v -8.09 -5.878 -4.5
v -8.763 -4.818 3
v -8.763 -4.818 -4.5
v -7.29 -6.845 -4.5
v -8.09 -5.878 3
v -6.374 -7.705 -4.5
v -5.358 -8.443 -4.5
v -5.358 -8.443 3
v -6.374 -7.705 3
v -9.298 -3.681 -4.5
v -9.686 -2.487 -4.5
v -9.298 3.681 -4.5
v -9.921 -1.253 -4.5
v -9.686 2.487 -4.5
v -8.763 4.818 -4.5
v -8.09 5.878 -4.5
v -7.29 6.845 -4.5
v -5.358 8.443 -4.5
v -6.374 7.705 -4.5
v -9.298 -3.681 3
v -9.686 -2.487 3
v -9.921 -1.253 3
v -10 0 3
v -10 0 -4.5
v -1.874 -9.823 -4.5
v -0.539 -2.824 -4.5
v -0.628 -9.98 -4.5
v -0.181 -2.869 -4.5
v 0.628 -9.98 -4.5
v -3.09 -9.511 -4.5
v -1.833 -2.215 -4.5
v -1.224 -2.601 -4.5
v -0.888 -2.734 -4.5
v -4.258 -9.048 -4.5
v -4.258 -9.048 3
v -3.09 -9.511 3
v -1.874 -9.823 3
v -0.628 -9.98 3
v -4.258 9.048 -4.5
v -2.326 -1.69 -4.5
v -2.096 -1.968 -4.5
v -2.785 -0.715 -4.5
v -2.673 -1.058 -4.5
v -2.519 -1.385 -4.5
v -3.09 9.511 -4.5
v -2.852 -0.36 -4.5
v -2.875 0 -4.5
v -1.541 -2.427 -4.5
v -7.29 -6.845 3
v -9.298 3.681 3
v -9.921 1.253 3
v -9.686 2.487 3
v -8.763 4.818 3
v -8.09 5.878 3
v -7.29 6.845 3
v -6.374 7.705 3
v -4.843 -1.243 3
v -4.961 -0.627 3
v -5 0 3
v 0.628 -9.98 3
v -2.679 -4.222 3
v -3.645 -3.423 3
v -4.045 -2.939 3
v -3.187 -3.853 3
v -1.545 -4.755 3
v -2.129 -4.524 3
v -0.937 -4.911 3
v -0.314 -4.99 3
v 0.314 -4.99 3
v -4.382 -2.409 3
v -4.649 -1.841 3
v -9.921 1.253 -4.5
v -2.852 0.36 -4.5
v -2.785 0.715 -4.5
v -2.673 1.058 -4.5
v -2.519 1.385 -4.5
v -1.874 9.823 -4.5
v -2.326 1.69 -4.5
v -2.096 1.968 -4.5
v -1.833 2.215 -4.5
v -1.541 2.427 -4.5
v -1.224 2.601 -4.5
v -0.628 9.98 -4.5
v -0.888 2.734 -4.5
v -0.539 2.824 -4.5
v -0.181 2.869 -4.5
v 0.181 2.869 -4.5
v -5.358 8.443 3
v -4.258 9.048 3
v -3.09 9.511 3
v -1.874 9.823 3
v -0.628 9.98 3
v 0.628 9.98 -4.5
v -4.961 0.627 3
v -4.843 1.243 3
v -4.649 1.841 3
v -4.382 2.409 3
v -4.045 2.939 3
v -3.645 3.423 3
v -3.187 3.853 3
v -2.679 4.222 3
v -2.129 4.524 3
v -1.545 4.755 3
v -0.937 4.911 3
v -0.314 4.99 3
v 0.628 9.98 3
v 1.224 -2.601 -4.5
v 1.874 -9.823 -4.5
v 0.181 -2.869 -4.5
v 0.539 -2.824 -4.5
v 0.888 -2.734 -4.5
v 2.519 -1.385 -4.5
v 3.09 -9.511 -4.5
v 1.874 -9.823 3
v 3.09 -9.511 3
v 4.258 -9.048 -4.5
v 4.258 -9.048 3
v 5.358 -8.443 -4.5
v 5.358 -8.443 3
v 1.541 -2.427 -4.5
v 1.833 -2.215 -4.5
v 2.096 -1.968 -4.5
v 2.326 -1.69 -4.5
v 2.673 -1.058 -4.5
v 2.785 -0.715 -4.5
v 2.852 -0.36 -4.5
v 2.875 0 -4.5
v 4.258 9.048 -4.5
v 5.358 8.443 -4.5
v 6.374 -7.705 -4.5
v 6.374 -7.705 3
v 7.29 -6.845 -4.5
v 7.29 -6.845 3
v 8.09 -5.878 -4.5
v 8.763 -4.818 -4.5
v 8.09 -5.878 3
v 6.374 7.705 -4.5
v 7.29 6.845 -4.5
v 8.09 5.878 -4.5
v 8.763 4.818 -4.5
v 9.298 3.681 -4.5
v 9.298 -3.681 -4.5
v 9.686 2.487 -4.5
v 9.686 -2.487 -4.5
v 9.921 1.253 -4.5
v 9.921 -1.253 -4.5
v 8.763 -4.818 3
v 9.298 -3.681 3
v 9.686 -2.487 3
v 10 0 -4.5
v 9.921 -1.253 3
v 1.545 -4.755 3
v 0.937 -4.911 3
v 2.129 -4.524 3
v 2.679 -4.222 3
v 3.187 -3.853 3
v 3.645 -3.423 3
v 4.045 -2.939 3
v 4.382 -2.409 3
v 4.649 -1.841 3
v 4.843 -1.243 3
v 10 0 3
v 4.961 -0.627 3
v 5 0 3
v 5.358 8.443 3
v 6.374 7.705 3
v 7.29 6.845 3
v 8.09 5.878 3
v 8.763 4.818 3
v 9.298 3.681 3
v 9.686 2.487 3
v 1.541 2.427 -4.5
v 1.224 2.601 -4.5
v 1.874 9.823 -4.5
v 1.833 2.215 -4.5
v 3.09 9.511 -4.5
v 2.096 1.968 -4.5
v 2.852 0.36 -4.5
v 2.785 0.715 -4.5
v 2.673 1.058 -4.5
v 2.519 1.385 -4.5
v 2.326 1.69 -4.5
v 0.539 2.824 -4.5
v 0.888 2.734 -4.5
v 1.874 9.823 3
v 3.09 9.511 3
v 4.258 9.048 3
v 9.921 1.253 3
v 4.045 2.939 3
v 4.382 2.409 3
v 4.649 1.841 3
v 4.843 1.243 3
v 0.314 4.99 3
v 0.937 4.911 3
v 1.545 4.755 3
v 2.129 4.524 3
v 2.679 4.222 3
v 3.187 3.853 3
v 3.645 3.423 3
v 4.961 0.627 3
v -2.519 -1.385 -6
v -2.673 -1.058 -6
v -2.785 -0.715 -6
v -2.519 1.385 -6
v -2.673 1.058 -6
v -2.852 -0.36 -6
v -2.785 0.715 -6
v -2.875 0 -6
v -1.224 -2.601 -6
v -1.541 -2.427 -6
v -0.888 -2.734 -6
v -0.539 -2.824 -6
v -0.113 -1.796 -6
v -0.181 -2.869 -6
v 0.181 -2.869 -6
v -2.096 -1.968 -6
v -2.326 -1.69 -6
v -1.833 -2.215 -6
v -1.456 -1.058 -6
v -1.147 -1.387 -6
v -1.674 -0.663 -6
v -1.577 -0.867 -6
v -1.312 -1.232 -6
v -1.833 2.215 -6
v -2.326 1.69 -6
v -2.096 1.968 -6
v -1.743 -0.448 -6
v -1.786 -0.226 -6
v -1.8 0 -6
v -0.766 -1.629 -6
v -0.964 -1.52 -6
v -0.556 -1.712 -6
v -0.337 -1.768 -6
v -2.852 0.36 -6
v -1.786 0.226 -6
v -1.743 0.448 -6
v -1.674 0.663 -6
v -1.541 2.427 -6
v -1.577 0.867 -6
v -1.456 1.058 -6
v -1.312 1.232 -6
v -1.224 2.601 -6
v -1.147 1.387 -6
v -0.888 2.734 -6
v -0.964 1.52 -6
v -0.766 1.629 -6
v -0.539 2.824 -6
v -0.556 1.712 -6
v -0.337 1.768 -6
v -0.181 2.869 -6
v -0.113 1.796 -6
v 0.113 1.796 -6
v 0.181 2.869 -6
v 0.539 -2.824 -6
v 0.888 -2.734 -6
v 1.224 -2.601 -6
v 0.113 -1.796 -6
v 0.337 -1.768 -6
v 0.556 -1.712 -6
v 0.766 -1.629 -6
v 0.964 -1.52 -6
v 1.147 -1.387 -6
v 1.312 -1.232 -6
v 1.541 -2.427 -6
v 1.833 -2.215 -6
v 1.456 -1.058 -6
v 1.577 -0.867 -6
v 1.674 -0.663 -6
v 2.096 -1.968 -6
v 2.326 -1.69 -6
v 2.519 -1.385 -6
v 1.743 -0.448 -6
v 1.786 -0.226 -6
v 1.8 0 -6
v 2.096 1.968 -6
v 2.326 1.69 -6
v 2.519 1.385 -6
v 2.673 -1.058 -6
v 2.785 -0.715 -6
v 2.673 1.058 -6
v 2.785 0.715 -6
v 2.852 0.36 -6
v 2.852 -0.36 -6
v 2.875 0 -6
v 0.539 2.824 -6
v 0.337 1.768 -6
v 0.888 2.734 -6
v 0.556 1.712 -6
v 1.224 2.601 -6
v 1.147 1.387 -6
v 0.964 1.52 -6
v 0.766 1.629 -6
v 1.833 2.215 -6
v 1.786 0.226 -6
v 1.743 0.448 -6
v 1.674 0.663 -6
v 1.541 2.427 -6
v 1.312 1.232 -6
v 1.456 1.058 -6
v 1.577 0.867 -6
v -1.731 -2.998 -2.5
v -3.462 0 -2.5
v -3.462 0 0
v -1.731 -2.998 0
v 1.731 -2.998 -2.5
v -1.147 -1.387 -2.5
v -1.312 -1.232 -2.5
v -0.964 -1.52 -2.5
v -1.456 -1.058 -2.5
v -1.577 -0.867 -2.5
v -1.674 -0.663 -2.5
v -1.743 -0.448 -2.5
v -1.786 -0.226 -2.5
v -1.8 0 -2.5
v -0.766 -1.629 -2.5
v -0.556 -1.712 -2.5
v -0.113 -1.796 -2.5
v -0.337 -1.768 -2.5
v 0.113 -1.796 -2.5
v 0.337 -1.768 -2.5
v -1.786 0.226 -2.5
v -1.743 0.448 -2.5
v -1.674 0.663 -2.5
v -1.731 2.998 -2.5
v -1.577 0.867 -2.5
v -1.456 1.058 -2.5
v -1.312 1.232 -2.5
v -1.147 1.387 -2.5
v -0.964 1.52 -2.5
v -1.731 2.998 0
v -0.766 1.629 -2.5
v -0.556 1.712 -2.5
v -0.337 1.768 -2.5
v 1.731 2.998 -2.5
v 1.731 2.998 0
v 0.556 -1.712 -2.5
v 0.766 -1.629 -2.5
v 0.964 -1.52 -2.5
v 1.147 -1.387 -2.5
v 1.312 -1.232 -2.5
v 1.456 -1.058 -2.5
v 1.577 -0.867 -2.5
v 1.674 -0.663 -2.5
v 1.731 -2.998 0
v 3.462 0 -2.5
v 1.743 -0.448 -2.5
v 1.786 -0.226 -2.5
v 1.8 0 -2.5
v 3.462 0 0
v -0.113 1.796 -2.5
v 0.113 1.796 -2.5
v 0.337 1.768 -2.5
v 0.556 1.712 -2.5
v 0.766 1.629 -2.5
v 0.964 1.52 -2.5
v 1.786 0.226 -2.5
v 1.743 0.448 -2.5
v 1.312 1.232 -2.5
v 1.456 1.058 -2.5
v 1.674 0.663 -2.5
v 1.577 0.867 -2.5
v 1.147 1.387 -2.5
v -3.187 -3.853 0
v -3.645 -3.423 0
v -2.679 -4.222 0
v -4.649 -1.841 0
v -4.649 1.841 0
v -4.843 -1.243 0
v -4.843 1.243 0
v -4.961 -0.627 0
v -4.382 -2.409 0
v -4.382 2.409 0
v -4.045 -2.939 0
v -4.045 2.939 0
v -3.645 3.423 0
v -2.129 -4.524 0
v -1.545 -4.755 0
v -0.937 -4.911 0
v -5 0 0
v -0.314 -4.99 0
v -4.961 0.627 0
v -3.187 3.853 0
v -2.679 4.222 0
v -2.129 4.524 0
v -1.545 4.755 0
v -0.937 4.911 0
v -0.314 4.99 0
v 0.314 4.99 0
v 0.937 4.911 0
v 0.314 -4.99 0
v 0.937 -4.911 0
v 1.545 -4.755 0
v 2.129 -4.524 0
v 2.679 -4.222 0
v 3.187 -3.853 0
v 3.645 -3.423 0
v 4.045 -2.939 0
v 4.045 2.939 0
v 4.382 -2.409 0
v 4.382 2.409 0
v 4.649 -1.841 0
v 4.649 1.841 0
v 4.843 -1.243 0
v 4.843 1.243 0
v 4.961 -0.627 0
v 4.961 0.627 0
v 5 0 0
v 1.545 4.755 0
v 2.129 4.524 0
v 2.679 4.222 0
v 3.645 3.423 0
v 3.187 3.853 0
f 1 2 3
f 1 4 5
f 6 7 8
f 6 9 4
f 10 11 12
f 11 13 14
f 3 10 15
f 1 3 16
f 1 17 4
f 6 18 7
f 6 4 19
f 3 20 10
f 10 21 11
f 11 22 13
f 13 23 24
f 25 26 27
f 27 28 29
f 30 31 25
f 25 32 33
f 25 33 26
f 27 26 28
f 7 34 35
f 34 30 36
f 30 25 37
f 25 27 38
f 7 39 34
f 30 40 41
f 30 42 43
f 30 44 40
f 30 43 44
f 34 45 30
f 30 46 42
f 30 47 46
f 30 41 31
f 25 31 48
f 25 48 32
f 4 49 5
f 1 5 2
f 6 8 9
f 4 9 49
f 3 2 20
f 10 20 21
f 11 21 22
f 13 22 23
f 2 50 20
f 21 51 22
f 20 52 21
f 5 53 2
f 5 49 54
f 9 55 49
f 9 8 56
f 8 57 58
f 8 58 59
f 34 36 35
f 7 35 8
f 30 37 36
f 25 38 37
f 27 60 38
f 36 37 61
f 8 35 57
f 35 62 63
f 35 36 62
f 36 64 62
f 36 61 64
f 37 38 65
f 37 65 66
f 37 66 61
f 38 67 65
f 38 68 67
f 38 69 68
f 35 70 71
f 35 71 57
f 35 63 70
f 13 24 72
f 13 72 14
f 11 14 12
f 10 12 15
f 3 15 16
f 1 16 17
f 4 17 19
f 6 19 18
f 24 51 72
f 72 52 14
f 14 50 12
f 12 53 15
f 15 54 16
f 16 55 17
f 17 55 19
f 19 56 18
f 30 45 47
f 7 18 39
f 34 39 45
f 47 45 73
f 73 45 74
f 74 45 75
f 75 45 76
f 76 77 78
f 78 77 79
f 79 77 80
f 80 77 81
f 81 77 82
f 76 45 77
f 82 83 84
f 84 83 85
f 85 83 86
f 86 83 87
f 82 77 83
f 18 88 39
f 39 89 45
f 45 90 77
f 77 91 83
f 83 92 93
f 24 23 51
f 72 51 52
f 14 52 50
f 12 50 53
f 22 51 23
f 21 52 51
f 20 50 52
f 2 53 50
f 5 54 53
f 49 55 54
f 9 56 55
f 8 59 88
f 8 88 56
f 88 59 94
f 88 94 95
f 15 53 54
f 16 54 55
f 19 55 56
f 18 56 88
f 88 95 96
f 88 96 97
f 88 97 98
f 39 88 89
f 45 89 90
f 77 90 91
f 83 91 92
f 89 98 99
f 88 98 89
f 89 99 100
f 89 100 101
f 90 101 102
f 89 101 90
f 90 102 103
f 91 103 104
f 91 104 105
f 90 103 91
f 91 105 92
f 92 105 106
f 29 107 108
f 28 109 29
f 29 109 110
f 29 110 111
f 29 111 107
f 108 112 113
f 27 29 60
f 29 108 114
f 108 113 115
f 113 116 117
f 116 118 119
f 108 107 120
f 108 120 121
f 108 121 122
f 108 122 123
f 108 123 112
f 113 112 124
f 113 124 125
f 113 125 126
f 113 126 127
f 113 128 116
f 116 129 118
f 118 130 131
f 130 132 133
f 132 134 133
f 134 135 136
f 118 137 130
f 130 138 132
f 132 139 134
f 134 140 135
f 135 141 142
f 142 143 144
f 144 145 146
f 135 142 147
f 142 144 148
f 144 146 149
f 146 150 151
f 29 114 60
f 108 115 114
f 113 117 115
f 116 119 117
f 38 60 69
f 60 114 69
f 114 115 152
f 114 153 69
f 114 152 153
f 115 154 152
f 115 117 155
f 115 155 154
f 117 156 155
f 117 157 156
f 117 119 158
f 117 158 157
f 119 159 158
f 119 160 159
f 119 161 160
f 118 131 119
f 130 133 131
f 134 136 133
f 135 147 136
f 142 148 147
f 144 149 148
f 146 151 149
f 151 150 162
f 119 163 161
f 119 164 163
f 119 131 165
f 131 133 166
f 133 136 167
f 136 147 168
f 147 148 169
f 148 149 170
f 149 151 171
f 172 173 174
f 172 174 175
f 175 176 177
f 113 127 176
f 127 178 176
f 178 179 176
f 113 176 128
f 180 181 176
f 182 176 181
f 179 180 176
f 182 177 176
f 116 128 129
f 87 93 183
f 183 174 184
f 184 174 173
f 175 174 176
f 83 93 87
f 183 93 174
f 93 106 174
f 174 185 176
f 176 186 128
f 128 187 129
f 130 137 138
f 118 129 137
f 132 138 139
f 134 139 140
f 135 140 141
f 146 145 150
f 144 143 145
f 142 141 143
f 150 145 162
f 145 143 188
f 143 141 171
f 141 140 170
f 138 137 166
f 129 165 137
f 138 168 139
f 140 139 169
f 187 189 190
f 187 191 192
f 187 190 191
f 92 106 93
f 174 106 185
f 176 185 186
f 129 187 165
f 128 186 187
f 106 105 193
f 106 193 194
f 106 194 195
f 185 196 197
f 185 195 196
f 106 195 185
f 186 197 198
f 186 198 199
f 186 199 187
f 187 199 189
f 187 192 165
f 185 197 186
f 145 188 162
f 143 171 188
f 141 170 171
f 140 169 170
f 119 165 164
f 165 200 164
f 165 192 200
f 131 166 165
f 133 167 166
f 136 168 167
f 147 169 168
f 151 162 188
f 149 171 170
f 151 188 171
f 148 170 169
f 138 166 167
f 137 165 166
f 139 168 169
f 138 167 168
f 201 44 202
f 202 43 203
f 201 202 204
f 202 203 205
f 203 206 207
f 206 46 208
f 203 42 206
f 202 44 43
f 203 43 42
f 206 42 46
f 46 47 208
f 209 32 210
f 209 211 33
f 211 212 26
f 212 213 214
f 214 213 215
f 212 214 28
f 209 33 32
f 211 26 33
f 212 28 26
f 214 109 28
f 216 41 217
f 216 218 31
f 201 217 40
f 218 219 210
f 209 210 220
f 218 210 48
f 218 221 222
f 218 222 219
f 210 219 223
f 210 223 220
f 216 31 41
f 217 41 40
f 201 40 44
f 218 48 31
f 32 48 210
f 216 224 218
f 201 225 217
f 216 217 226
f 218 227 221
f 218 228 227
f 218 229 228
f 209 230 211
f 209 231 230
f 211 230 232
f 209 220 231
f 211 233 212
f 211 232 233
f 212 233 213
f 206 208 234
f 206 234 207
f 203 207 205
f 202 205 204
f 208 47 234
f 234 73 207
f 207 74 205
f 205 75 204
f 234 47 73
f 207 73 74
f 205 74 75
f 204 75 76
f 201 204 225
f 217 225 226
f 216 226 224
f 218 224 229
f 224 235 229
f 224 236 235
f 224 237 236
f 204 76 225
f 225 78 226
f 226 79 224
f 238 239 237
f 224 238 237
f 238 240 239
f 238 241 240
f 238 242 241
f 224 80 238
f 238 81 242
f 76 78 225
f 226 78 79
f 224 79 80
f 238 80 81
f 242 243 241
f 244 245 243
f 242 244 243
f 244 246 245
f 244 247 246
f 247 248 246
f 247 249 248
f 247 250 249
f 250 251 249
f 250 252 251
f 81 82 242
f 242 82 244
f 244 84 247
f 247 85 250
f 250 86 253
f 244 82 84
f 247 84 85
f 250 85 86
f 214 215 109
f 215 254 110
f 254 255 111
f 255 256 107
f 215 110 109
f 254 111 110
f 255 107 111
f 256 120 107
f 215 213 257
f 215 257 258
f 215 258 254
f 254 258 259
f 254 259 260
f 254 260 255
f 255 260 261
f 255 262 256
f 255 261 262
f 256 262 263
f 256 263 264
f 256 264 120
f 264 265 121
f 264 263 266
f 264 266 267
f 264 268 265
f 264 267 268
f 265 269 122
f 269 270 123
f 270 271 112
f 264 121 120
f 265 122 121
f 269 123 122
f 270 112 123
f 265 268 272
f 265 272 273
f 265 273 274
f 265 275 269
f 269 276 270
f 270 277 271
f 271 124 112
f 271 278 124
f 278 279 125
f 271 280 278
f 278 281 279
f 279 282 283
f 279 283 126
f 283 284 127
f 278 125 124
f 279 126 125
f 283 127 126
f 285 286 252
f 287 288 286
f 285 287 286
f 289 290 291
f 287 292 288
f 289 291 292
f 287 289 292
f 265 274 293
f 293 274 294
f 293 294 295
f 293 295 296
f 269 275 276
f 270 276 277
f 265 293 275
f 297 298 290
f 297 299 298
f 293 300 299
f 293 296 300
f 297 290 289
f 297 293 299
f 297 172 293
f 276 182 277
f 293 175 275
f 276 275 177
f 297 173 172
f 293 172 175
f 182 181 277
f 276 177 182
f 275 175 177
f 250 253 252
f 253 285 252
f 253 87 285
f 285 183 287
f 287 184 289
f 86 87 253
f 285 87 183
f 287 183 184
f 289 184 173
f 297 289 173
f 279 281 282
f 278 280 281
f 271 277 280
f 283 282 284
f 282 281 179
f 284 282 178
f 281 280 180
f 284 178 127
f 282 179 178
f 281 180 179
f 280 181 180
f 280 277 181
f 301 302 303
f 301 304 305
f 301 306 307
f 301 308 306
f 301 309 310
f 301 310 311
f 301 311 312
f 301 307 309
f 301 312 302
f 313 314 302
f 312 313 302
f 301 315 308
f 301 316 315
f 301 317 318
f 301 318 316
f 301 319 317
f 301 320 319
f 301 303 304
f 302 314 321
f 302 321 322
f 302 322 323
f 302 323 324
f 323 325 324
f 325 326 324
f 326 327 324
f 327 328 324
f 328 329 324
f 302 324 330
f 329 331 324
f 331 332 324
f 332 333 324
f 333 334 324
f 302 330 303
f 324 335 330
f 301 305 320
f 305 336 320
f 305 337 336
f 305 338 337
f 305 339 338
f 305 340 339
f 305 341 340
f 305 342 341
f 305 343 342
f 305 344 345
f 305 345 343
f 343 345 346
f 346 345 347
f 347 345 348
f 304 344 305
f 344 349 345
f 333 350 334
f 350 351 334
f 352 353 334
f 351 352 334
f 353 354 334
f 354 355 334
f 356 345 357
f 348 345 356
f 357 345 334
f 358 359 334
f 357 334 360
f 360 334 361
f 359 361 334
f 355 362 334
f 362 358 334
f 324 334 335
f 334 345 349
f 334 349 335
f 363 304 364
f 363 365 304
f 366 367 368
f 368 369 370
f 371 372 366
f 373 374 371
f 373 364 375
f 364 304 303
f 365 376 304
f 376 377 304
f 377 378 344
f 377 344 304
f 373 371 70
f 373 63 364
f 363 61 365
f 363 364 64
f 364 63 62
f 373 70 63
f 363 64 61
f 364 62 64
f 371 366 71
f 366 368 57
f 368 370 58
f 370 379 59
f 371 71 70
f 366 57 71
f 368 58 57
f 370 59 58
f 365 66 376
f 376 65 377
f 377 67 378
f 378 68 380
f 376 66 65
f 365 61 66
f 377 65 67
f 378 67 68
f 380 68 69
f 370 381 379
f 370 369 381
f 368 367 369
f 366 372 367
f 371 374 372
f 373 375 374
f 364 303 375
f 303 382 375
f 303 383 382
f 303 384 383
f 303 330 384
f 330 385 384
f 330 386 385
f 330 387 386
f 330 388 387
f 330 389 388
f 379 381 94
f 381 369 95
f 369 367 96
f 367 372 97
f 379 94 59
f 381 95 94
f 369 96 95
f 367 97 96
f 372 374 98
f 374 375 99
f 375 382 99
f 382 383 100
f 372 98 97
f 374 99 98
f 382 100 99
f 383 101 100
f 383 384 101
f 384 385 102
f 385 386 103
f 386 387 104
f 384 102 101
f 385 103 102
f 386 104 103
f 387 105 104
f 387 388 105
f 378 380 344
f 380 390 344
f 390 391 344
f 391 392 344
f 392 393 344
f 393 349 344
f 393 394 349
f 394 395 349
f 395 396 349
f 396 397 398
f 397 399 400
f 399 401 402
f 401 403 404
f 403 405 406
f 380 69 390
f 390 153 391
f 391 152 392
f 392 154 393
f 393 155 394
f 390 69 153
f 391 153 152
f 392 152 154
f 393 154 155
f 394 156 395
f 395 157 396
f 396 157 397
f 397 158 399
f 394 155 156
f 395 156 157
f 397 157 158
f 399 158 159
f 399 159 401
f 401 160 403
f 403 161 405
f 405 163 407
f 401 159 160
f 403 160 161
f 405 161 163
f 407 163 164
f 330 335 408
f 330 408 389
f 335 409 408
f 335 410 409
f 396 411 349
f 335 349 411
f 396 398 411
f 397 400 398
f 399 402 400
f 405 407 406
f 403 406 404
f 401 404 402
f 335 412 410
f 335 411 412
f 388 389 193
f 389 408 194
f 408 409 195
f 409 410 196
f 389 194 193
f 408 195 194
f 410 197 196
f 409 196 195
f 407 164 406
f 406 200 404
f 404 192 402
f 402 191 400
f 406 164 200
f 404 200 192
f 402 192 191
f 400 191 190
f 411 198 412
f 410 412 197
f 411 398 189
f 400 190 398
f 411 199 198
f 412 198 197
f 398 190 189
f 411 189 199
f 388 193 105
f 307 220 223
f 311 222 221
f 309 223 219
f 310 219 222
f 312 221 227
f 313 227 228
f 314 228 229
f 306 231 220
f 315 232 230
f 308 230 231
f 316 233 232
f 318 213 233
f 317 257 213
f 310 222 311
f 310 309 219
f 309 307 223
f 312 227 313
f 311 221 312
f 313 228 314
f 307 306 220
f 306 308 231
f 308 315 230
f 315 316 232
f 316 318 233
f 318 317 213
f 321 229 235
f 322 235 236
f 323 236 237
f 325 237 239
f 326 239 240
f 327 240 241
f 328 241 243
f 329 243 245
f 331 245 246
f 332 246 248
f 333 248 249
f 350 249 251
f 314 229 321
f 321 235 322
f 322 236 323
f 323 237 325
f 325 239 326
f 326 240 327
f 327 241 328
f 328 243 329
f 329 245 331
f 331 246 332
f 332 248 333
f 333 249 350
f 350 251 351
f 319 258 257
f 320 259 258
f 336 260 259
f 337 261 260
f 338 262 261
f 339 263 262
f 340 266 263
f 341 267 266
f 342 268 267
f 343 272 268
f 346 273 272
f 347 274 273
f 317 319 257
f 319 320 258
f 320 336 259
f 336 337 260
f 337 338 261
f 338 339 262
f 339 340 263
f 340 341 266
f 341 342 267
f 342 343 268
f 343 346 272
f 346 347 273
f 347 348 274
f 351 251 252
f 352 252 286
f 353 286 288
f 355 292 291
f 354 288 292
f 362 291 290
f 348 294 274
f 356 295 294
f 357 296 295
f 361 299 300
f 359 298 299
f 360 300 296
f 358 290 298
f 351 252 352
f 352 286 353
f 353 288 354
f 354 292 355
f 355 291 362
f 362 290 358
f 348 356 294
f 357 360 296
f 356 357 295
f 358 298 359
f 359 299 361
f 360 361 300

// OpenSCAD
$fn = 50;

difference() {
	union() {
		translate(v = [0, 0, -4.5]) {
			cylinder(h = 7.5, r = 10.0);
		}
		#translate(v = [0, 0, -6.0]) {
			cylinder(h = 6, r = 2.875);
		}
	}
	union() {
		translate(v = [0, 0, 0]) {
			rotate(a = [0, 0, 0]) {
				difference() {
					union() {
						translate(v = [0, 0, -2.5]) {
							linear_extrude(height = 2.5) {
								polygon(points = [[3.4619999999999997, 0.0], [1.7310000000000003, 2.9981799479017264], [-1.7309999999999992, 2.9981799479017264], [-3.4619999999999997, 4.2397272186481365e-16], [-1.7310000000000014, -2.998179947901726], [1.7309999999999977, -2.9981799479017277]]);
							}
						}
					}
					union();
				}
			}
		}
		#cylinder(h = 3, r = 5.0);
		#translate(v = [0, 0, -100.0]) {
			cylinder(h = 200, r = 1.8);
		}
	}
}
